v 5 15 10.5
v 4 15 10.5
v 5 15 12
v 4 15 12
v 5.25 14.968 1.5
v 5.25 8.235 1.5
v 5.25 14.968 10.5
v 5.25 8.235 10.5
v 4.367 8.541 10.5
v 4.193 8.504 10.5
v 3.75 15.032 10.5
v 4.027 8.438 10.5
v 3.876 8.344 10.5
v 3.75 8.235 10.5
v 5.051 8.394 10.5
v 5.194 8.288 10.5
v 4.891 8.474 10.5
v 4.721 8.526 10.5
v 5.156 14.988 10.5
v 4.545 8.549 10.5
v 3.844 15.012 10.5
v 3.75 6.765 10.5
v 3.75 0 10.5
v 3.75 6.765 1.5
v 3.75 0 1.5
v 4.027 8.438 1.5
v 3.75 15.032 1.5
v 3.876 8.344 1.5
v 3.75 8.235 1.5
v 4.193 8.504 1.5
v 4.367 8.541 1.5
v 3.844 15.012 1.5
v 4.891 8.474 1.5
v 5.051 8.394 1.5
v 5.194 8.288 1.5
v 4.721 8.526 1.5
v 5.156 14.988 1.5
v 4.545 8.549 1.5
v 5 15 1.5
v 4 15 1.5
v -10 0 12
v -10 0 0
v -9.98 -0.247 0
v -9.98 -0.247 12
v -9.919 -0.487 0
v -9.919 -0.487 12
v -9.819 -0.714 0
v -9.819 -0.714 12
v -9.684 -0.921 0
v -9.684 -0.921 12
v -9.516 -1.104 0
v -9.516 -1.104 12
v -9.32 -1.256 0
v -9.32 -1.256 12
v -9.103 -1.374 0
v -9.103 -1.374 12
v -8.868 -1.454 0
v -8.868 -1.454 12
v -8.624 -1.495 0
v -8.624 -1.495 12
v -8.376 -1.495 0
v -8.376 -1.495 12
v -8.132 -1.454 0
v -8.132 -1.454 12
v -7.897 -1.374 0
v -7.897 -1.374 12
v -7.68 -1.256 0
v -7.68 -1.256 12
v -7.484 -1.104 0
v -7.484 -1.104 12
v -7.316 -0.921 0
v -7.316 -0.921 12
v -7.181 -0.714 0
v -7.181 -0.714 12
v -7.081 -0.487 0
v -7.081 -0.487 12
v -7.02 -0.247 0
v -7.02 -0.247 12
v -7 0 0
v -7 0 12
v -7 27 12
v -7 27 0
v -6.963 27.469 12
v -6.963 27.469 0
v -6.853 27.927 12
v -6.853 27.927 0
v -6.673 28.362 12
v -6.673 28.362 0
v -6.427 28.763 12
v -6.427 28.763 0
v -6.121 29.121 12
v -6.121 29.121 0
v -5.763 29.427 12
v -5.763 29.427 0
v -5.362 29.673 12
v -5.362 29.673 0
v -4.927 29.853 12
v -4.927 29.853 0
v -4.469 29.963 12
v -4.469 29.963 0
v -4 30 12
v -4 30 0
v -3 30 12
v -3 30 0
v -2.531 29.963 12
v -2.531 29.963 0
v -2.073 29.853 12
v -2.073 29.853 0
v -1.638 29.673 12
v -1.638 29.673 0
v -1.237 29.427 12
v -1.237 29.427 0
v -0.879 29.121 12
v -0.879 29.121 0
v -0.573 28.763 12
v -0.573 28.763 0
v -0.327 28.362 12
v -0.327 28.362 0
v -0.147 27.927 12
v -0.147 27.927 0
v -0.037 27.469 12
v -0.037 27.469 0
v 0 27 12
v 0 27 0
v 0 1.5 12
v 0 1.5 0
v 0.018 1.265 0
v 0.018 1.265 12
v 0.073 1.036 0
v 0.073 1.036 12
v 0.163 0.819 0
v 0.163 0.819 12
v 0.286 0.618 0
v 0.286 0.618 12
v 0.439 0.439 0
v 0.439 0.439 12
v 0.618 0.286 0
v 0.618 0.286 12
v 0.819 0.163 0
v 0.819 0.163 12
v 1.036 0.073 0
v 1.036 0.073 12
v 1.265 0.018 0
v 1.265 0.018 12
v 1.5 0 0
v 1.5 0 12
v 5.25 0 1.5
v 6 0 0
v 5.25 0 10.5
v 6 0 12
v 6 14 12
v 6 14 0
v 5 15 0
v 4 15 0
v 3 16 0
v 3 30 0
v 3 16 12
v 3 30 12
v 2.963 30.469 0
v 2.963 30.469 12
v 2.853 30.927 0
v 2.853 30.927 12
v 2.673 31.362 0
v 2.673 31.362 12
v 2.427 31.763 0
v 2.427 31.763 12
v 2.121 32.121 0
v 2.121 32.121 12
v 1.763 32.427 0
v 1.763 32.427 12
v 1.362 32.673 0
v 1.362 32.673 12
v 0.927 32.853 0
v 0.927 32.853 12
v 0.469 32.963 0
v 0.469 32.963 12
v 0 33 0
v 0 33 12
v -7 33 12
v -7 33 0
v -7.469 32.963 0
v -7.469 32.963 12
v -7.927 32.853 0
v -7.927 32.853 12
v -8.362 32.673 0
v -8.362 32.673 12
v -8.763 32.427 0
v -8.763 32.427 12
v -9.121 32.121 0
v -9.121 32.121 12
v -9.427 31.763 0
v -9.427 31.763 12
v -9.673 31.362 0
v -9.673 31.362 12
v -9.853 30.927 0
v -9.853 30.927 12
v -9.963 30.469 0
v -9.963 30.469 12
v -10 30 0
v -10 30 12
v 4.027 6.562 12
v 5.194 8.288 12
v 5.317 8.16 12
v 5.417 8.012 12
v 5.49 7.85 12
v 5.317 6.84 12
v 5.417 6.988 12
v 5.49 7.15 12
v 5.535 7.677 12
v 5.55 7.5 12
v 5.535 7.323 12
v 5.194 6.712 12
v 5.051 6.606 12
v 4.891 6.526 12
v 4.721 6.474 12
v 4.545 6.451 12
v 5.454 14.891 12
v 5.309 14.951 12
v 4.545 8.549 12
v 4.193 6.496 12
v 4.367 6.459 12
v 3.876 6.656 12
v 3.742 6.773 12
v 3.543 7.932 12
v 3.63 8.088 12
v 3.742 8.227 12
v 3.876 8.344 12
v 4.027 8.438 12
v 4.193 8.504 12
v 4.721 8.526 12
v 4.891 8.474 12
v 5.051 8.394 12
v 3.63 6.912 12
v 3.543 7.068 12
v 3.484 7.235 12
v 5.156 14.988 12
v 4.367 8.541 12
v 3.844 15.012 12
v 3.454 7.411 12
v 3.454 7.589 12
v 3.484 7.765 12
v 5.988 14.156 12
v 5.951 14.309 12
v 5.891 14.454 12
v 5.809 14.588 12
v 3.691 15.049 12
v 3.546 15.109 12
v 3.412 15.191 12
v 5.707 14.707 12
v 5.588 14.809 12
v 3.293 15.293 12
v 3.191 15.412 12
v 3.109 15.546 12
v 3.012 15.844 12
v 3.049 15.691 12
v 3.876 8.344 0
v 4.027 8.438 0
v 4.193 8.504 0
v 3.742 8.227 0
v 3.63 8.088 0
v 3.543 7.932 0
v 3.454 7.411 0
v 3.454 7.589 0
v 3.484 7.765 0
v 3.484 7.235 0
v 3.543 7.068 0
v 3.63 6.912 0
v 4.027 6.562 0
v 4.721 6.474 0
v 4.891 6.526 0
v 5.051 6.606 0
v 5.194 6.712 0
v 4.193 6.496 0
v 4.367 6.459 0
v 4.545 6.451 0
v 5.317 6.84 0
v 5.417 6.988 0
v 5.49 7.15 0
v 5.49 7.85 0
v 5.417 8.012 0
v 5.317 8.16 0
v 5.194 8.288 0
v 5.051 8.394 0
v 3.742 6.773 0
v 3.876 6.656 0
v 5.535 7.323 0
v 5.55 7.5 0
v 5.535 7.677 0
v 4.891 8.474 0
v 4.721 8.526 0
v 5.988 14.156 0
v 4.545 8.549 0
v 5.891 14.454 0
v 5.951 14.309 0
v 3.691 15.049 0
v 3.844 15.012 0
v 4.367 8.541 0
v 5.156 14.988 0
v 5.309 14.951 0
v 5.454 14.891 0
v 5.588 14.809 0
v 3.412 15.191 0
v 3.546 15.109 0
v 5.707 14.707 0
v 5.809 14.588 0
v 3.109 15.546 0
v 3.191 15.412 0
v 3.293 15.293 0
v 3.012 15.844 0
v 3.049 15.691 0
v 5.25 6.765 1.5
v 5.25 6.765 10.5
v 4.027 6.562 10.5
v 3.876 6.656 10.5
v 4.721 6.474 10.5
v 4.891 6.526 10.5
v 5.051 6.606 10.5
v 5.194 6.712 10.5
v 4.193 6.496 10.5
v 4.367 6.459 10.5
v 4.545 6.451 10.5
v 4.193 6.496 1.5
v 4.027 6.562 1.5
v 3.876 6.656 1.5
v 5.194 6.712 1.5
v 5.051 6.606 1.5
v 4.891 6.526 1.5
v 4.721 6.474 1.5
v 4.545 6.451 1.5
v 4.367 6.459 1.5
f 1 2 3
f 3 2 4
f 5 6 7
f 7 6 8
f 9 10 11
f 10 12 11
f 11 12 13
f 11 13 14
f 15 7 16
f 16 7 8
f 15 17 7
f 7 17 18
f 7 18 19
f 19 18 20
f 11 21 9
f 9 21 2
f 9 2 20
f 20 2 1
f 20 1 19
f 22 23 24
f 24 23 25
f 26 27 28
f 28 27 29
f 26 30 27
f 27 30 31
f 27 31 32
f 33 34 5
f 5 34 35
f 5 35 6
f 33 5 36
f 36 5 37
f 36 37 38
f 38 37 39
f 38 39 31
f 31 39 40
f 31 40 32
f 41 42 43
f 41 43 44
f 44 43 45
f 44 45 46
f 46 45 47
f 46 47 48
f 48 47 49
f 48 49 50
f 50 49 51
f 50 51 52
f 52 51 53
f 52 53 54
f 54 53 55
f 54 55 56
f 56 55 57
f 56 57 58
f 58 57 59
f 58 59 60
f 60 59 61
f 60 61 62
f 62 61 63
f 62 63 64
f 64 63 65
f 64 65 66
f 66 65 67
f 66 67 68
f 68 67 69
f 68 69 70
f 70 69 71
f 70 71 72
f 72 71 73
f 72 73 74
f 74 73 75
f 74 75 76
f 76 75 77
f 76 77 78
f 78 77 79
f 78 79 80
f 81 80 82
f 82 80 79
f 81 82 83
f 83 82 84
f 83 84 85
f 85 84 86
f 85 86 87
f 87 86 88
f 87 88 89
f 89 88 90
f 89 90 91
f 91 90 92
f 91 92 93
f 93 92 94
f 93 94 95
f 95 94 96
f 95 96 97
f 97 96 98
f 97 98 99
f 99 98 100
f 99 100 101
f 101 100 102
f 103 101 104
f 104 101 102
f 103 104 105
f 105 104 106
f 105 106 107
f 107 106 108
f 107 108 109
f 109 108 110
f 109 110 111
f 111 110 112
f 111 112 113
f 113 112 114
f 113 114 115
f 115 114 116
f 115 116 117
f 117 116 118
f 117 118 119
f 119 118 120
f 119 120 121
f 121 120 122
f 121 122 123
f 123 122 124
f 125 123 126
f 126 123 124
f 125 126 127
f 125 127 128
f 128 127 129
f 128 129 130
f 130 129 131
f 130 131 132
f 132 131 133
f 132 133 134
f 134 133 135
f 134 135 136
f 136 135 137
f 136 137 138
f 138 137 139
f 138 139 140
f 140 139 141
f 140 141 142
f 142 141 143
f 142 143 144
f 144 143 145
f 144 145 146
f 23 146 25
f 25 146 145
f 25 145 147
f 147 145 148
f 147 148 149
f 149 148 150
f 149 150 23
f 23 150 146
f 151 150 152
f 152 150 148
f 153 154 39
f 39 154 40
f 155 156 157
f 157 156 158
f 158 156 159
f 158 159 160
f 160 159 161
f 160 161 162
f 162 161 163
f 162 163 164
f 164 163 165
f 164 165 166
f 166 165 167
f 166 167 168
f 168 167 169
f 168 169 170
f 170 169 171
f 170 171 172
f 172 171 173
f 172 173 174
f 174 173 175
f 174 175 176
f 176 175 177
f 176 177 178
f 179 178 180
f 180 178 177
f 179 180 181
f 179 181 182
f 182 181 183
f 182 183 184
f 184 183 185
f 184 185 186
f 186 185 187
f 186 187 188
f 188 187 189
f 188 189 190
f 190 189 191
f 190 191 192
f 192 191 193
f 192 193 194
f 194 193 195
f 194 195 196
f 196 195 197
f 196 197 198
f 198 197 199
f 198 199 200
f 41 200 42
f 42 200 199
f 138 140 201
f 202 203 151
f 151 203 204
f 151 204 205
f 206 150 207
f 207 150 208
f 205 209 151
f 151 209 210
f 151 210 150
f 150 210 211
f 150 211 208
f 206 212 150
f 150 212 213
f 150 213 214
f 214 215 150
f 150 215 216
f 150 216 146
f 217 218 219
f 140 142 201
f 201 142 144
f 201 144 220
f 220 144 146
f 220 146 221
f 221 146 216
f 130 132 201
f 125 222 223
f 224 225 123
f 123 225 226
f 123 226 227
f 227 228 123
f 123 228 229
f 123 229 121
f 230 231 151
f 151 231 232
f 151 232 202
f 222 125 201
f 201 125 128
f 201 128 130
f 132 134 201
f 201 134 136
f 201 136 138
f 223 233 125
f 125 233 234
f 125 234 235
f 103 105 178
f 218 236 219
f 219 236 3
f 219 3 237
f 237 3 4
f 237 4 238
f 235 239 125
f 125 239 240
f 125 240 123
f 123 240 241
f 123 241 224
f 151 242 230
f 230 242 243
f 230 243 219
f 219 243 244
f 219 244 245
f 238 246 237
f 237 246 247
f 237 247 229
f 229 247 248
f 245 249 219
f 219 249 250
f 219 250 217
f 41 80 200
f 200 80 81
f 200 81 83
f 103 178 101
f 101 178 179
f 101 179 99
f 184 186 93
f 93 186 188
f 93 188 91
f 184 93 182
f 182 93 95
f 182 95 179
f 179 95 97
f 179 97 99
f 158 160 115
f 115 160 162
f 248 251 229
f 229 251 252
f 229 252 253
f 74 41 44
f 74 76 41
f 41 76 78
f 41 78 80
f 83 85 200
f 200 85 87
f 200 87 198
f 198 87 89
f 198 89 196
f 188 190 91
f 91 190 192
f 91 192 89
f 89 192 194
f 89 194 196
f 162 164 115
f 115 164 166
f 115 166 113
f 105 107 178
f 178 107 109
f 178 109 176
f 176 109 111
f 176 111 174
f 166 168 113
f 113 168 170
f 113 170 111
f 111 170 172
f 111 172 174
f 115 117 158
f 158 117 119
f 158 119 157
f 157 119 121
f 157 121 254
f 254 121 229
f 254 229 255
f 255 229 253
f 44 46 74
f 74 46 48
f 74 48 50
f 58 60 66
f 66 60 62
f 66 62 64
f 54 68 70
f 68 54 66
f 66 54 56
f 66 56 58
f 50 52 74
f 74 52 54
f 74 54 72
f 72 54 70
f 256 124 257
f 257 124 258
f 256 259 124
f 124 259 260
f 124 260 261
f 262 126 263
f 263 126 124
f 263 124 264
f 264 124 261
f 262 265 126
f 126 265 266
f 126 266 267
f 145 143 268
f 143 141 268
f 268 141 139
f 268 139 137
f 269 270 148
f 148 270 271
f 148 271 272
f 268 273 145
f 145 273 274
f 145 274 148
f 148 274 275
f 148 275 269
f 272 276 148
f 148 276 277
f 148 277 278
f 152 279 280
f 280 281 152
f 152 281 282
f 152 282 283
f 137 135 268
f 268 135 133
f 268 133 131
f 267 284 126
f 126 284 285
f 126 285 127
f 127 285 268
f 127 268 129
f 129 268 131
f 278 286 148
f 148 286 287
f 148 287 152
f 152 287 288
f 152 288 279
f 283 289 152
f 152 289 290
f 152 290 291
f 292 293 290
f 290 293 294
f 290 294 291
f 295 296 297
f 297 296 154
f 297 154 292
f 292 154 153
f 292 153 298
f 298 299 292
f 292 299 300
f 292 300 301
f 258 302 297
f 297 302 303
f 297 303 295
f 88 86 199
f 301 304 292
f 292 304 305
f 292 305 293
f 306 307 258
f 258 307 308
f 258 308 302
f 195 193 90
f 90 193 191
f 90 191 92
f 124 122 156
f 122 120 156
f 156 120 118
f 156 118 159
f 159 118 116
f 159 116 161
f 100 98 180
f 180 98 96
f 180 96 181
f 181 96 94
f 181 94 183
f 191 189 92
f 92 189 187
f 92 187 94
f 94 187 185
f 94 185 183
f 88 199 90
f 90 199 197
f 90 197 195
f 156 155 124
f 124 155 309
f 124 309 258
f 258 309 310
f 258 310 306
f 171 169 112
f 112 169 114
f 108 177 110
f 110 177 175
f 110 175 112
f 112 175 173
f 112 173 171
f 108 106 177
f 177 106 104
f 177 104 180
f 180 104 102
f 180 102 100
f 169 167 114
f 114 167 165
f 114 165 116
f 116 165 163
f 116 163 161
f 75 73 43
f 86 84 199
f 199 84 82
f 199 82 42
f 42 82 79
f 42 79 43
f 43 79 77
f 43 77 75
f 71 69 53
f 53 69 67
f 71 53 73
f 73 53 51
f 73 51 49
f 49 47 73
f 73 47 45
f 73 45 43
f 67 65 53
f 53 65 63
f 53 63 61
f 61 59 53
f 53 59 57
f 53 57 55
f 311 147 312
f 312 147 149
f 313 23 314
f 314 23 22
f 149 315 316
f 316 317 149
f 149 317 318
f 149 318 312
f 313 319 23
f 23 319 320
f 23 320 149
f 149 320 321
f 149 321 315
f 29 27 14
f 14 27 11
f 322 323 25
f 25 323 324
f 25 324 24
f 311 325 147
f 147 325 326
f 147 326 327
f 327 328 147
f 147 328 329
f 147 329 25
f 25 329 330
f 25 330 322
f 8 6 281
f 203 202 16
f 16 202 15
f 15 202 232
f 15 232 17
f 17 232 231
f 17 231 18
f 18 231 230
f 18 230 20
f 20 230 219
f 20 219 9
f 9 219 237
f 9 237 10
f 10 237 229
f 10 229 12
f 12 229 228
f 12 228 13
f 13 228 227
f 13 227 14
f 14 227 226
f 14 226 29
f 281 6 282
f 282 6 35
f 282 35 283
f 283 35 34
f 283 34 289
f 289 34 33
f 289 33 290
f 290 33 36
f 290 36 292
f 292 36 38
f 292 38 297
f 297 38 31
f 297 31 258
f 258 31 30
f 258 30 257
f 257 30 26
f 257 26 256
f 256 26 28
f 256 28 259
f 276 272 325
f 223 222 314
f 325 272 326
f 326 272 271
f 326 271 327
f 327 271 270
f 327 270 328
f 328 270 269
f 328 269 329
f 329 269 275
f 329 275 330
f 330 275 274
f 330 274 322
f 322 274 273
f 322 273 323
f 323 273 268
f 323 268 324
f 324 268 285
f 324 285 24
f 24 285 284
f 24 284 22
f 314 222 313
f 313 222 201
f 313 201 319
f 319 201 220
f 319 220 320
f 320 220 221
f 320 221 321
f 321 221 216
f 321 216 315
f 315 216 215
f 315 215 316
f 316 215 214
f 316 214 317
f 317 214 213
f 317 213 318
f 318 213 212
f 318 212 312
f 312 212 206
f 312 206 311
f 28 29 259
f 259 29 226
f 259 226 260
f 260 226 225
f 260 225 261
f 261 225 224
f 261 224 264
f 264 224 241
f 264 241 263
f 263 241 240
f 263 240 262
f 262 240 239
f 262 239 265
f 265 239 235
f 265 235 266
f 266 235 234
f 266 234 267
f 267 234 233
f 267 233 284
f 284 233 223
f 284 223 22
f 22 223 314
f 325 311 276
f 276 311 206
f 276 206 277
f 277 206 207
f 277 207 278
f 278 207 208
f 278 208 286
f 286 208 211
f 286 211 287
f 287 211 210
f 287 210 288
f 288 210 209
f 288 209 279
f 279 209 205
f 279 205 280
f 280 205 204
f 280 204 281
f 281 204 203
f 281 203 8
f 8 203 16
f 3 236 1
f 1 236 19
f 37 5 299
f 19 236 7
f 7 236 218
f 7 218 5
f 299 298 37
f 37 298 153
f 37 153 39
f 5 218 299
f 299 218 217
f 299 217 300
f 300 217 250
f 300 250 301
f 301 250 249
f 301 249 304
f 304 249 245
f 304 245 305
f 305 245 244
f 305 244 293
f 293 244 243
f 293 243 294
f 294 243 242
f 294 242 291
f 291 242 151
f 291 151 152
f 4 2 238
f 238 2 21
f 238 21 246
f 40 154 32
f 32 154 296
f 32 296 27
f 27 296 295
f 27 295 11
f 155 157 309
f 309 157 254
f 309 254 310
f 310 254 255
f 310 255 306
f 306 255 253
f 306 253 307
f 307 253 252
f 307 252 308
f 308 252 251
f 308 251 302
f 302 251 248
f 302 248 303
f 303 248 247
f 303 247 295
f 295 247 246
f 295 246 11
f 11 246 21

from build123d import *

# Parameters (mm, degrees)
SKETCH1_R           = 1.5
BOSS_EXTRUDE2_DEPTH = 12
SKETCH3_W           = 1.5
SKETCH3_H           = 9
CUT_EXTRUDE2_DEPTH  = 24.832750576
SKETCH4_R           = 1.05
CUT_EXTRUDE3_DEPTH  = 37.510272527
FILLET1_START       = -1
FILLET1_DEPTH       = 14
FILLET1_2_DEPTH     = 12
FILLET1_3_DEPTH     = 1.5
FILLET1_START_2     = 10.5
FILLET1_4_DEPTH     = 1.5


with BuildPart() as part:
    # Sketch1 → Boss-Extrude2 (new body)
    with BuildSketch(Plane.XY):
        with BuildLine():
            ThreePointArc((-10, 0), (-8.5, -1.5), (-7, 0))
            Line((-7, 0), (-10, 0))
        make_face()
        with BuildLine():
            Line((-10, 0), (-7, 0))
            ThreePointArc((-7, 0), (-8.5, 1.5), (-10, 0))
        make_face()
        Polygon((3, 15), (3, 1.5), (3, 0), (6, 0), (6, 15), align=None)
        with BuildLine():
            Line((0, 27), (0, 1.5))
            ThreePointArc((0, 1.5), (1.5, 3), (3, 1.5))
            Line((3, 1.5), (3, 15))
            Line((3, 15), (3, 30))
            ThreePointArc((3, 30), (2.121320344, 32.121320344), (0, 33))
            Line((0, 33), (-7, 33))
            ThreePointArc((-7, 33), (-9.121320344, 32.121320344), (-10, 30))
            Line((-10, 30), (-10, 0))
            ThreePointArc((-10, 0), (-8.5, 1.5), (-7, 0))
            Line((-7, 0), (-7, 27))
            ThreePointArc((-7, 27), (-6.121320344, 29.121320344), (-4, 30))
            Line((-4, 30), (-3, 30))
            ThreePointArc((-3, 30), (-0.878679656, 29.121320344), (0, 27))
        make_face()
        with Locations((1.5, 1.5)):
            Circle(SKETCH1_R)
        with BuildLine():
            ThreePointArc((3, 1.5), (2.560660172, 0.439339828), (1.5, 0))
            Line((1.5, 0), (3, 0))
            Line((3, 0), (3, 1.5))
        make_face()
    extrude(amount=BOSS_EXTRUDE2_DEPTH)

    # Sketch3 → Cut-Extrude2 (cut, through all)
    with BuildSketch(Plane(origin=(0, 15, 0), x_dir=(1, 0, 0), z_dir=(0, 1, 0))):
        with Locations((4.5, -6)):
            Rectangle(SKETCH3_W, SKETCH3_H)
    extrude(amount=-CUT_EXTRUDE2_DEPTH, mode=Mode.SUBTRACT)

    # Sketch4 → Cut-Extrude3 (cut, through all)
    with BuildSketch(Plane.XY.offset(12)):
        with Locations((4.5, 7.5)):
            Circle(SKETCH4_R)
    extrude(amount=-CUT_EXTRUDE3_DEPTH, mode=Mode.SUBTRACT)

    # Fillet1: read off the stored shape, not the designer's step
    # Fillet1 outline → Fillet1 (cut)
    with BuildSketch(Plane.XY.offset(FILLET1_START)):
        with BuildLine():
            Line((6, 14), (6, 15))
            Line((6, 15), (5, 15))
            ThreePointArc((5, 15), (5.707106781, 14.707106781), (6, 14))
        make_face()
    extrude(amount=FILLET1_DEPTH, mode=Mode.SUBTRACT)

    # Fillet1 2 outline → Fillet1 2 (add)
    with BuildSketch(Plane.XY):
        with BuildLine():
            Line((3.75, 15), (3.75, 15.031754164))
            ThreePointArc((3.75, 15.031754164), (3.209430585, 15.387627564), (3, 16))
            Line((3, 16), (3, 15))
            Line((3, 15), (3.75, 15))
        make_face()
    extrude(amount=FILLET1_2_DEPTH)

    # Fillet1 3 outline → Fillet1 3 (add)
    with BuildSketch(Plane.XY):
        with BuildLine():
            Line((3.75, 15), (4, 15))
            ThreePointArc((4, 15), (3.873995708, 15.007970304), (3.75, 15.031754164))
            Line((3.75, 15.031754164), (3.75, 15))
        make_face()
    extrude(amount=FILLET1_3_DEPTH)

    # Fillet1 4 outline → Fillet1 4 (add)
    with BuildSketch(Plane.XY.offset(FILLET1_START_2)):
        with BuildLine():
            Line((3.75, 15), (4, 15))
            ThreePointArc((4, 15), (3.873995708, 15.007970304), (3.75, 15.031754164))
            Line((3.75, 15.031754164), (3.75, 15))
        make_face()
    extrude(amount=FILLET1_4_DEPTH)


solid = part.part
